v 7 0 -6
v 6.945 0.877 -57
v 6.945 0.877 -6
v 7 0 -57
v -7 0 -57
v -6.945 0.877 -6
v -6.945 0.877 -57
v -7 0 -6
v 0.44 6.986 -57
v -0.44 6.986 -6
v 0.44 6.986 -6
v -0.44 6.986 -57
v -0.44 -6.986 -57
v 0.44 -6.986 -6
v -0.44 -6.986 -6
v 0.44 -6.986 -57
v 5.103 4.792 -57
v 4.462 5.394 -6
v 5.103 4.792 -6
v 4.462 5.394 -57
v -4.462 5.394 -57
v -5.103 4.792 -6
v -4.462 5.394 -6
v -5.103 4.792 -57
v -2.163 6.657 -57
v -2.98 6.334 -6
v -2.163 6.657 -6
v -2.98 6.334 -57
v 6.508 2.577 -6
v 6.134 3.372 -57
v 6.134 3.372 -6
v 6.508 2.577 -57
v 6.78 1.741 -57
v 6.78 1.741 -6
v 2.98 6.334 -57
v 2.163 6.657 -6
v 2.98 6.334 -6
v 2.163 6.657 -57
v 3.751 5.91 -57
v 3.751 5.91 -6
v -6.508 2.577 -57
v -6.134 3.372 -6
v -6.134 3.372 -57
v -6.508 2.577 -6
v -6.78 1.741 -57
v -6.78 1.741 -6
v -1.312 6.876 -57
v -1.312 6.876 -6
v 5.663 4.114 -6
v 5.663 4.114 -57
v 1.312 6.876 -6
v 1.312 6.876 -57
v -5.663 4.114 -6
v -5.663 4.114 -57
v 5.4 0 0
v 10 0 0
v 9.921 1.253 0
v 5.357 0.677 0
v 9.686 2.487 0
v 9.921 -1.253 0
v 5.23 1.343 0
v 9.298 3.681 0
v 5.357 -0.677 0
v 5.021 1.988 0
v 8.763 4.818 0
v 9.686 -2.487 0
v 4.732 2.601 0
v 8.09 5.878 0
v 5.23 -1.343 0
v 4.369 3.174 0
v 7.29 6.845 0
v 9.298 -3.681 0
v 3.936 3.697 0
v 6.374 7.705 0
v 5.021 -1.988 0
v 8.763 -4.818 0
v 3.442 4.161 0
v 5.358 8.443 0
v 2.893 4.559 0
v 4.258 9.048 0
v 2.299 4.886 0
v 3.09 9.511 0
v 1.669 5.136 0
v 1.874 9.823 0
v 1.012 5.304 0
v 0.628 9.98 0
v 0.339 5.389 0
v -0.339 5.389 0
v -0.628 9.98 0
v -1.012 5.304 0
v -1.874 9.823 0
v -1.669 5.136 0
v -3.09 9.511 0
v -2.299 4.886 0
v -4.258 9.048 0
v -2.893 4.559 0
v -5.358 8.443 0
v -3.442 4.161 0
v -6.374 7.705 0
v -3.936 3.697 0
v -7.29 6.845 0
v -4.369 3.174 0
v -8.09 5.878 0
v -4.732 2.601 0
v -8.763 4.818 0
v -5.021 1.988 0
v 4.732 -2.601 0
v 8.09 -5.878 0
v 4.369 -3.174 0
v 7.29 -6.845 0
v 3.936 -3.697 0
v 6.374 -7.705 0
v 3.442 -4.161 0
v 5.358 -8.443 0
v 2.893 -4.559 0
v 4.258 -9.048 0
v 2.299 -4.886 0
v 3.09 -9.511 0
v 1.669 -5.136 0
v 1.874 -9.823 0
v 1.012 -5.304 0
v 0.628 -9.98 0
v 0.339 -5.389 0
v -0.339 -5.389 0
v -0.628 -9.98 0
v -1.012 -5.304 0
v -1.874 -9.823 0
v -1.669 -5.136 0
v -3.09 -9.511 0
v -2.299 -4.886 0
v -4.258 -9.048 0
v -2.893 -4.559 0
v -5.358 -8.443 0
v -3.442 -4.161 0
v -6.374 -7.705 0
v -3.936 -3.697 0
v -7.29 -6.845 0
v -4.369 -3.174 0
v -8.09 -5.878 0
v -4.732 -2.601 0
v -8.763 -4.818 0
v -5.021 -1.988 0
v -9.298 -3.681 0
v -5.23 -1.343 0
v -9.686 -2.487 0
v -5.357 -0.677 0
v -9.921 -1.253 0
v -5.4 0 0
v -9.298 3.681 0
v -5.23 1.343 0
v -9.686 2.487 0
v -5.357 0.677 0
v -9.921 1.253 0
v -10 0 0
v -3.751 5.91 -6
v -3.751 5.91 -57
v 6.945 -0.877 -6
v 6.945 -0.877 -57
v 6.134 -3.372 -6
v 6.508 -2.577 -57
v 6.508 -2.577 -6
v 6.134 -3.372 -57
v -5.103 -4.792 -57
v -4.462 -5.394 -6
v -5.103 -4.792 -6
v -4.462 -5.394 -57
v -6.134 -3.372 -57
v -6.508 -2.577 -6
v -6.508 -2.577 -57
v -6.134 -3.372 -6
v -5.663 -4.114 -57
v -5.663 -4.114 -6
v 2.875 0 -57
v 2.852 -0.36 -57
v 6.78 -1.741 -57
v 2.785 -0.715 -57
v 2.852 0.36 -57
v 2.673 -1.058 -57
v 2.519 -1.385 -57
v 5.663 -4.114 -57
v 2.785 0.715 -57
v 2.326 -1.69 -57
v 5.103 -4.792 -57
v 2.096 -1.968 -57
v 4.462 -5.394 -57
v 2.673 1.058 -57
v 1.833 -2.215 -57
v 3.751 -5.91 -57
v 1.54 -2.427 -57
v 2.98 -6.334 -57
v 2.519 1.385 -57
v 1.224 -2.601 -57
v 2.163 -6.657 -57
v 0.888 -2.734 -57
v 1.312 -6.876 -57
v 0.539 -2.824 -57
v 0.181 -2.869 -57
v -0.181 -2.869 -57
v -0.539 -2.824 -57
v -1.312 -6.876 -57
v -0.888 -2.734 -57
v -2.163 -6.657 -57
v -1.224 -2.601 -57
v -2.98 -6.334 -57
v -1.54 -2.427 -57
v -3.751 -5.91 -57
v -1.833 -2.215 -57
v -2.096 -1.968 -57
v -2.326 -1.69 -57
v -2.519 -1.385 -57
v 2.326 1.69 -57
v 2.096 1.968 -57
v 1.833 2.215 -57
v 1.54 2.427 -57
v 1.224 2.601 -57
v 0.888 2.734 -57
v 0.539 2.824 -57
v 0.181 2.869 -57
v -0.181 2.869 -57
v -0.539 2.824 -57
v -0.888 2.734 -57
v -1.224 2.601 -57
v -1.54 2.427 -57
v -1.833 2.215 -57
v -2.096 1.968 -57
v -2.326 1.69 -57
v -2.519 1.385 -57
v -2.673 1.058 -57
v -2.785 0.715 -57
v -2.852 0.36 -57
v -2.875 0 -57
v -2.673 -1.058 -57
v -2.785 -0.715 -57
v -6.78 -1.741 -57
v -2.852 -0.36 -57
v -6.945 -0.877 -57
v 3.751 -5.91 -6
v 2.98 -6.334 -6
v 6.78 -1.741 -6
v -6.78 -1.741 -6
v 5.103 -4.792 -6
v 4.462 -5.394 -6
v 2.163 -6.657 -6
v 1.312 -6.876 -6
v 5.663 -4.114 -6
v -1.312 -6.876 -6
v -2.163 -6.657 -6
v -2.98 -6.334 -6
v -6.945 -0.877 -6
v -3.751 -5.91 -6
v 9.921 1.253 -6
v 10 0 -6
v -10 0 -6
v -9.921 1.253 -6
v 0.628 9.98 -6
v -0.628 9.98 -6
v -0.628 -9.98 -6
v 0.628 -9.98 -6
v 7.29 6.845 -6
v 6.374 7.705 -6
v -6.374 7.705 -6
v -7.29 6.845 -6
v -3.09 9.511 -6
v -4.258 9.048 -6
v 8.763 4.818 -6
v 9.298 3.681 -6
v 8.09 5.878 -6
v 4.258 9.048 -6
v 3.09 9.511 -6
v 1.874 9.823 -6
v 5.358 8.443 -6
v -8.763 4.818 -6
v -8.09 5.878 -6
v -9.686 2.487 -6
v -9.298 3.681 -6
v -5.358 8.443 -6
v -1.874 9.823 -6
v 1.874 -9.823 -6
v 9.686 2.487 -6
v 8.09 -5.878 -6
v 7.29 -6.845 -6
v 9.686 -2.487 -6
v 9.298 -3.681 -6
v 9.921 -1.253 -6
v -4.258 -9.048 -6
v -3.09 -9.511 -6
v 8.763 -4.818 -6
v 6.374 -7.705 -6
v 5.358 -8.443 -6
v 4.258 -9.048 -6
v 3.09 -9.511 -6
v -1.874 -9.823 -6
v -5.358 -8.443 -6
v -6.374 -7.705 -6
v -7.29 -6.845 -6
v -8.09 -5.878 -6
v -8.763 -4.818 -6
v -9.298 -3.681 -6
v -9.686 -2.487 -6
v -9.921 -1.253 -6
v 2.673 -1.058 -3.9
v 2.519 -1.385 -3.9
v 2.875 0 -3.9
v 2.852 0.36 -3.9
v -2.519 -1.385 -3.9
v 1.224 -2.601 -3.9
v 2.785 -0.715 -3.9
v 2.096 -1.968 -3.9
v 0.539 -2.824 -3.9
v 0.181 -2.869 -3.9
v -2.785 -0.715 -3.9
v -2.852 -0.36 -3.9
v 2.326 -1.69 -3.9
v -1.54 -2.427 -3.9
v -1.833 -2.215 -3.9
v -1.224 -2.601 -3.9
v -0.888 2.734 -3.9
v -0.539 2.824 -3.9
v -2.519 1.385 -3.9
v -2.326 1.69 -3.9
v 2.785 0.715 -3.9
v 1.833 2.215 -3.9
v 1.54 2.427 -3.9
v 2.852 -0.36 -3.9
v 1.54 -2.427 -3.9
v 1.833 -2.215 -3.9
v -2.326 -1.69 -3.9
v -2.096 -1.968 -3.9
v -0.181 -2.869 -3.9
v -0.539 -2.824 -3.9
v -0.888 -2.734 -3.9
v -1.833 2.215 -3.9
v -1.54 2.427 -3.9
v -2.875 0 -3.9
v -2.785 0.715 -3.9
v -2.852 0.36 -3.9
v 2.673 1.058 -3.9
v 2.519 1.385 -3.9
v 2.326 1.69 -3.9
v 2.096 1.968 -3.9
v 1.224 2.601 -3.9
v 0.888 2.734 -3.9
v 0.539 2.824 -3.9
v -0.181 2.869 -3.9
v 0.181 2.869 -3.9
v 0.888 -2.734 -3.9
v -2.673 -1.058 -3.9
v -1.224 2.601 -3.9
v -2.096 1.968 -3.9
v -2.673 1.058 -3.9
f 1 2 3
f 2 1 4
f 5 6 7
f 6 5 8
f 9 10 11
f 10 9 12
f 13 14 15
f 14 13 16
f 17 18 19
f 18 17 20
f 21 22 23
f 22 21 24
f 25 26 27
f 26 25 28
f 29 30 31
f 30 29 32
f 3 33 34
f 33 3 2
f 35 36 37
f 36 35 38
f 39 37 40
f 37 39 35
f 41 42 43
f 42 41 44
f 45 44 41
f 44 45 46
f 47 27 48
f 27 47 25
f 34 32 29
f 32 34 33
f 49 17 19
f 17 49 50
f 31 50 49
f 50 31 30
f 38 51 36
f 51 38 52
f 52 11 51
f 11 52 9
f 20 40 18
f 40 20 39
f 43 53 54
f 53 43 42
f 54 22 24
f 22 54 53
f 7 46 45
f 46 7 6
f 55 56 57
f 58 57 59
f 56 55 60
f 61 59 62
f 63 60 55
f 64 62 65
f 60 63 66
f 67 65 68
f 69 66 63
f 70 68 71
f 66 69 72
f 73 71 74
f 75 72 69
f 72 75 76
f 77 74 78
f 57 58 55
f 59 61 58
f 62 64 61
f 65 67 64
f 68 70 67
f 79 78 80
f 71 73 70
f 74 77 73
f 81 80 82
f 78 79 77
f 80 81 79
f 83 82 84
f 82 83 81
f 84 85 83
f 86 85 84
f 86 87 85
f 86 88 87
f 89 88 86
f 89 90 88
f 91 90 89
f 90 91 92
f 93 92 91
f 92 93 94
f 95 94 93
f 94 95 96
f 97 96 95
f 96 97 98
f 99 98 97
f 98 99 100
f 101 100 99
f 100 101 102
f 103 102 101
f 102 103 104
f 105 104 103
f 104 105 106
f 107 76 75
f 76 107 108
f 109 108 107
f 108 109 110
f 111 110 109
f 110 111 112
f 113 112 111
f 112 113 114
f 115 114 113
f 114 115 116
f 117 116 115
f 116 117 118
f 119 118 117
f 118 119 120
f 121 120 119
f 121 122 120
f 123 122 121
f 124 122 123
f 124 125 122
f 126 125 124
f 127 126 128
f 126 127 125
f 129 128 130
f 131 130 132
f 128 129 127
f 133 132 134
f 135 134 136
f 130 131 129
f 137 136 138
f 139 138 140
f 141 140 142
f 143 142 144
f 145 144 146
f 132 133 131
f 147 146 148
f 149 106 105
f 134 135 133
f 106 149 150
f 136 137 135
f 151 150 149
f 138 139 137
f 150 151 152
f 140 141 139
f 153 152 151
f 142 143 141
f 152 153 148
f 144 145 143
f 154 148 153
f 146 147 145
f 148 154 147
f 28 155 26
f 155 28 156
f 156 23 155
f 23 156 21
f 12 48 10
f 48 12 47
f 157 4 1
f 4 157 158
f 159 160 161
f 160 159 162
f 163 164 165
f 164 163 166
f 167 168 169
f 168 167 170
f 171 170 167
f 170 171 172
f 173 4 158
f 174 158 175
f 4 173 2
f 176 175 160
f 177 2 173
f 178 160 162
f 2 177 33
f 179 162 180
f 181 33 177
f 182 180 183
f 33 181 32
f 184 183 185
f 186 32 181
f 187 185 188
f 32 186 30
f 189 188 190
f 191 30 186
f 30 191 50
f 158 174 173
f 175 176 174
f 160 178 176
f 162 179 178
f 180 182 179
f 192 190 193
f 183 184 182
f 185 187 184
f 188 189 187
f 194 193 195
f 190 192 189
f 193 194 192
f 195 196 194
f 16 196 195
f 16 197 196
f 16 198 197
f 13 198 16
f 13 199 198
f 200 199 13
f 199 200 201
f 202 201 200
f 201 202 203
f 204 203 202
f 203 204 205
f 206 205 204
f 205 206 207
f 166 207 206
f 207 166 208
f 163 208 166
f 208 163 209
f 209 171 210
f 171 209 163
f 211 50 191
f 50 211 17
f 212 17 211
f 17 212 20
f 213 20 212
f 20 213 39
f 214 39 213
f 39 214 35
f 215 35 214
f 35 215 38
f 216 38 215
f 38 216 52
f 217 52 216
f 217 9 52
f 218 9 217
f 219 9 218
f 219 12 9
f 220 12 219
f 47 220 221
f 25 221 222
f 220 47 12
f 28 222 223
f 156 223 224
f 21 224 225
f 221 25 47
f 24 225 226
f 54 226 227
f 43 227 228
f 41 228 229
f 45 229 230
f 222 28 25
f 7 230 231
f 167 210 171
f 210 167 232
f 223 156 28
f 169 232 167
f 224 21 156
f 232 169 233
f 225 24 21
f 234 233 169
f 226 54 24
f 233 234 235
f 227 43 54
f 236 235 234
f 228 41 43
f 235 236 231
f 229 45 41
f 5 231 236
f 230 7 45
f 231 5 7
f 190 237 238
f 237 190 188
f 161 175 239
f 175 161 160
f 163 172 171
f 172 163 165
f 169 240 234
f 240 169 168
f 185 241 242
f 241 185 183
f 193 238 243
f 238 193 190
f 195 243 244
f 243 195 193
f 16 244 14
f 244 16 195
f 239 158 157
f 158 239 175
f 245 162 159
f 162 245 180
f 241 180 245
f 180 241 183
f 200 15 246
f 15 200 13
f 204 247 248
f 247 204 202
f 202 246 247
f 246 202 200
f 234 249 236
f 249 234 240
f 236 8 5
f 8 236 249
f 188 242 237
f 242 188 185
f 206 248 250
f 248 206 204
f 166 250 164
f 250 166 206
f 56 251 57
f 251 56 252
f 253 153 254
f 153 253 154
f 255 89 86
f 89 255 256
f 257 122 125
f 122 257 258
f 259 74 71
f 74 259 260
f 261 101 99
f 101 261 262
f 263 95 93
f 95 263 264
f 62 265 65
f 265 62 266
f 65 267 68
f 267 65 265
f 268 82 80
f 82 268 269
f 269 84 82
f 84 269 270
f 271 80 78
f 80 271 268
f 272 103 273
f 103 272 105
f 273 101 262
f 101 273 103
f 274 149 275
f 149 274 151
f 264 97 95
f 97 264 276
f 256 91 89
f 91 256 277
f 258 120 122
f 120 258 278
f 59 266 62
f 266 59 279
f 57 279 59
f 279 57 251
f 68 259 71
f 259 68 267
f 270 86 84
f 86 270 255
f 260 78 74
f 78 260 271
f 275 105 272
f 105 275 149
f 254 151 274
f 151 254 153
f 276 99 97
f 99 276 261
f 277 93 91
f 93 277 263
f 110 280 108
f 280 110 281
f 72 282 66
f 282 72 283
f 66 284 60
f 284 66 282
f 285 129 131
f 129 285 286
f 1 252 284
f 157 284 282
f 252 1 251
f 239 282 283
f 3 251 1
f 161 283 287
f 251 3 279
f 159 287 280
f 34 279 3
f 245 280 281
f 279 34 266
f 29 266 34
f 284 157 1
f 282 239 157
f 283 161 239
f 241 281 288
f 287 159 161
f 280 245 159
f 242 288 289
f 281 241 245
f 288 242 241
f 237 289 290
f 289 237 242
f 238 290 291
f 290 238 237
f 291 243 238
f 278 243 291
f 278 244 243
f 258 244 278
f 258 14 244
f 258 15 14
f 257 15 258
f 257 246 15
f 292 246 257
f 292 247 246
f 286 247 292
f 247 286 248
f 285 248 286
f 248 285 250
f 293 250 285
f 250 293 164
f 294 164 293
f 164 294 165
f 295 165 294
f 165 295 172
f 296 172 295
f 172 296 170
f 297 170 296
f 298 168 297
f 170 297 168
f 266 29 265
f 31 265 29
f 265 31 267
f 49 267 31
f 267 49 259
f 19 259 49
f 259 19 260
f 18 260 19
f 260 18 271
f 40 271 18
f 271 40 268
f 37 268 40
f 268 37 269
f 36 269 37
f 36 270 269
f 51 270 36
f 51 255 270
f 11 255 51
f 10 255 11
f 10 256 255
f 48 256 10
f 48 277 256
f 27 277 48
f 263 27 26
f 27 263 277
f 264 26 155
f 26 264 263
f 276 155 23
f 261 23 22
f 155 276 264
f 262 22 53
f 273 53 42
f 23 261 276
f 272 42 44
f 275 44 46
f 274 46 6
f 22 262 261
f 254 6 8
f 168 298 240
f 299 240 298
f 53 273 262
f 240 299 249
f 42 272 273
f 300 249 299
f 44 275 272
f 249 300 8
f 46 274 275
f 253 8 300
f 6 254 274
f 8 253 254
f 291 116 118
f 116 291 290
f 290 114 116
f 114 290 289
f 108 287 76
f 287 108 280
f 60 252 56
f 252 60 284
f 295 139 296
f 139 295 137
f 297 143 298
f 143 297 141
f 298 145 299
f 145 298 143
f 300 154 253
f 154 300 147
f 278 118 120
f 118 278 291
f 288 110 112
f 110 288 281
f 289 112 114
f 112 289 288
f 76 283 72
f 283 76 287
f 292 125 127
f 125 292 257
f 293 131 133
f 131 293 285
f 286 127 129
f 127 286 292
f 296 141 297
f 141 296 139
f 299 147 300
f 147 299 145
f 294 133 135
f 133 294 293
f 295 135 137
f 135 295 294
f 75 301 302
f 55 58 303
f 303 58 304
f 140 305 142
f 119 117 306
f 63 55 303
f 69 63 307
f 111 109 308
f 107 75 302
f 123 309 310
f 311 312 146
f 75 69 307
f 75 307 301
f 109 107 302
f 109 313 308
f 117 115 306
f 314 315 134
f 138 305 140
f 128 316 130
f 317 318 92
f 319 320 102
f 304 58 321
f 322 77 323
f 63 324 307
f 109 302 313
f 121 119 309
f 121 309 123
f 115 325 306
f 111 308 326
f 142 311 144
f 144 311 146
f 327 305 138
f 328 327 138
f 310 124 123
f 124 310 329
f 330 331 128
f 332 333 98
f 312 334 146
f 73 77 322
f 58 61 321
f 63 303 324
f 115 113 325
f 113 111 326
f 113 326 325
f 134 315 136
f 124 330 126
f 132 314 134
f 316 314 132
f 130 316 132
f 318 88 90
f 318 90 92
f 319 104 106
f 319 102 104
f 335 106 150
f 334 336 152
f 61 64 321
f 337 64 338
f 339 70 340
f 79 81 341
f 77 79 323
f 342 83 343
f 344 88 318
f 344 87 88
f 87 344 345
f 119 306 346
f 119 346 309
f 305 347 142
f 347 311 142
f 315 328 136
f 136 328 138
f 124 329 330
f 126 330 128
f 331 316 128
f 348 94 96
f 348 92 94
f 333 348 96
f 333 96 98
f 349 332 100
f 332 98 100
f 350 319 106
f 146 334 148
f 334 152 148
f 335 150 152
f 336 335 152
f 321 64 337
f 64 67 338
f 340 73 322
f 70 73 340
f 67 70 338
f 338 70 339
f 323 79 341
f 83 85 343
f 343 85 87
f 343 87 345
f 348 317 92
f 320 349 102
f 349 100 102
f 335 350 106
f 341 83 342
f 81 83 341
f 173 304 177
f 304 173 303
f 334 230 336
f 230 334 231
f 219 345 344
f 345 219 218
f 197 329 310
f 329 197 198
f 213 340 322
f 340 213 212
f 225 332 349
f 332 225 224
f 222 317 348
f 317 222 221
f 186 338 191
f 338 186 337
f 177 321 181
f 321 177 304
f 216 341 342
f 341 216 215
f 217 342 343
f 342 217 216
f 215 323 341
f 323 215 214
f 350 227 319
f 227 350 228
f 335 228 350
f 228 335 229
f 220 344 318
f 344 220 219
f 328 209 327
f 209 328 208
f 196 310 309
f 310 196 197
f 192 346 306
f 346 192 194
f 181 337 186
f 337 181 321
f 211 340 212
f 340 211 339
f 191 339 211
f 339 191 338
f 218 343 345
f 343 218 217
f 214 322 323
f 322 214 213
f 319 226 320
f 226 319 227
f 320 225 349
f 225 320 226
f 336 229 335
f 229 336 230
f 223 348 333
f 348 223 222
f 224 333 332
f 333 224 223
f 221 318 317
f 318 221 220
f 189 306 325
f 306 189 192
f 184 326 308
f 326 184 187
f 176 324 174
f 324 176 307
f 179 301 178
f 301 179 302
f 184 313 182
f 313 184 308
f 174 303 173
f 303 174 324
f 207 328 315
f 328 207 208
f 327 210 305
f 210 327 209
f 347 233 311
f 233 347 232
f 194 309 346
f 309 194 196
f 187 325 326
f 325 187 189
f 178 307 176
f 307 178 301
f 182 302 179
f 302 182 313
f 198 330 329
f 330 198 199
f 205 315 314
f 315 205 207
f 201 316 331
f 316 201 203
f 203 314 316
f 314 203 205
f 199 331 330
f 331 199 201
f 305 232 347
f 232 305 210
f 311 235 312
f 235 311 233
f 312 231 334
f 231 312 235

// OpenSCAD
$fn = 50;


difference() {
	union() {
		translate(v = [0, 0, -57.0000000000]) {
			cylinder(h = 57, r = 7.0000000000);
		}
		translate(v = [0, 0, -6.0000000000]) {
			cylinder(h = 6, r = 10.0000000000);
		}
	}
	union() {
		translate(v = [0, 0, 0]) {
			rotate(a = [0, 0, 0]) {
				difference() {
					union() {
						#translate(v = [0, 0, -57.0000000000]) {
							cylinder(h = 57, r = 2.6000000000);
						}
						#translate(v = [0, 0, -3.9000000000]) {
							cylinder(h = 3.9000000000, r1 = 2.8750000000, r2 = 5.4000000000);
						}
						#translate(v = [0, 0, -57.0000000000]) {
							cylinder(h = 57, r = 2.8750000000);
						}
						#translate(v = [0, 0, -57.0000000000]) {
							cylinder(h = 57, r = 2.6000000000);
						}
					}
					union();
				}
			}
		}
	}
}
